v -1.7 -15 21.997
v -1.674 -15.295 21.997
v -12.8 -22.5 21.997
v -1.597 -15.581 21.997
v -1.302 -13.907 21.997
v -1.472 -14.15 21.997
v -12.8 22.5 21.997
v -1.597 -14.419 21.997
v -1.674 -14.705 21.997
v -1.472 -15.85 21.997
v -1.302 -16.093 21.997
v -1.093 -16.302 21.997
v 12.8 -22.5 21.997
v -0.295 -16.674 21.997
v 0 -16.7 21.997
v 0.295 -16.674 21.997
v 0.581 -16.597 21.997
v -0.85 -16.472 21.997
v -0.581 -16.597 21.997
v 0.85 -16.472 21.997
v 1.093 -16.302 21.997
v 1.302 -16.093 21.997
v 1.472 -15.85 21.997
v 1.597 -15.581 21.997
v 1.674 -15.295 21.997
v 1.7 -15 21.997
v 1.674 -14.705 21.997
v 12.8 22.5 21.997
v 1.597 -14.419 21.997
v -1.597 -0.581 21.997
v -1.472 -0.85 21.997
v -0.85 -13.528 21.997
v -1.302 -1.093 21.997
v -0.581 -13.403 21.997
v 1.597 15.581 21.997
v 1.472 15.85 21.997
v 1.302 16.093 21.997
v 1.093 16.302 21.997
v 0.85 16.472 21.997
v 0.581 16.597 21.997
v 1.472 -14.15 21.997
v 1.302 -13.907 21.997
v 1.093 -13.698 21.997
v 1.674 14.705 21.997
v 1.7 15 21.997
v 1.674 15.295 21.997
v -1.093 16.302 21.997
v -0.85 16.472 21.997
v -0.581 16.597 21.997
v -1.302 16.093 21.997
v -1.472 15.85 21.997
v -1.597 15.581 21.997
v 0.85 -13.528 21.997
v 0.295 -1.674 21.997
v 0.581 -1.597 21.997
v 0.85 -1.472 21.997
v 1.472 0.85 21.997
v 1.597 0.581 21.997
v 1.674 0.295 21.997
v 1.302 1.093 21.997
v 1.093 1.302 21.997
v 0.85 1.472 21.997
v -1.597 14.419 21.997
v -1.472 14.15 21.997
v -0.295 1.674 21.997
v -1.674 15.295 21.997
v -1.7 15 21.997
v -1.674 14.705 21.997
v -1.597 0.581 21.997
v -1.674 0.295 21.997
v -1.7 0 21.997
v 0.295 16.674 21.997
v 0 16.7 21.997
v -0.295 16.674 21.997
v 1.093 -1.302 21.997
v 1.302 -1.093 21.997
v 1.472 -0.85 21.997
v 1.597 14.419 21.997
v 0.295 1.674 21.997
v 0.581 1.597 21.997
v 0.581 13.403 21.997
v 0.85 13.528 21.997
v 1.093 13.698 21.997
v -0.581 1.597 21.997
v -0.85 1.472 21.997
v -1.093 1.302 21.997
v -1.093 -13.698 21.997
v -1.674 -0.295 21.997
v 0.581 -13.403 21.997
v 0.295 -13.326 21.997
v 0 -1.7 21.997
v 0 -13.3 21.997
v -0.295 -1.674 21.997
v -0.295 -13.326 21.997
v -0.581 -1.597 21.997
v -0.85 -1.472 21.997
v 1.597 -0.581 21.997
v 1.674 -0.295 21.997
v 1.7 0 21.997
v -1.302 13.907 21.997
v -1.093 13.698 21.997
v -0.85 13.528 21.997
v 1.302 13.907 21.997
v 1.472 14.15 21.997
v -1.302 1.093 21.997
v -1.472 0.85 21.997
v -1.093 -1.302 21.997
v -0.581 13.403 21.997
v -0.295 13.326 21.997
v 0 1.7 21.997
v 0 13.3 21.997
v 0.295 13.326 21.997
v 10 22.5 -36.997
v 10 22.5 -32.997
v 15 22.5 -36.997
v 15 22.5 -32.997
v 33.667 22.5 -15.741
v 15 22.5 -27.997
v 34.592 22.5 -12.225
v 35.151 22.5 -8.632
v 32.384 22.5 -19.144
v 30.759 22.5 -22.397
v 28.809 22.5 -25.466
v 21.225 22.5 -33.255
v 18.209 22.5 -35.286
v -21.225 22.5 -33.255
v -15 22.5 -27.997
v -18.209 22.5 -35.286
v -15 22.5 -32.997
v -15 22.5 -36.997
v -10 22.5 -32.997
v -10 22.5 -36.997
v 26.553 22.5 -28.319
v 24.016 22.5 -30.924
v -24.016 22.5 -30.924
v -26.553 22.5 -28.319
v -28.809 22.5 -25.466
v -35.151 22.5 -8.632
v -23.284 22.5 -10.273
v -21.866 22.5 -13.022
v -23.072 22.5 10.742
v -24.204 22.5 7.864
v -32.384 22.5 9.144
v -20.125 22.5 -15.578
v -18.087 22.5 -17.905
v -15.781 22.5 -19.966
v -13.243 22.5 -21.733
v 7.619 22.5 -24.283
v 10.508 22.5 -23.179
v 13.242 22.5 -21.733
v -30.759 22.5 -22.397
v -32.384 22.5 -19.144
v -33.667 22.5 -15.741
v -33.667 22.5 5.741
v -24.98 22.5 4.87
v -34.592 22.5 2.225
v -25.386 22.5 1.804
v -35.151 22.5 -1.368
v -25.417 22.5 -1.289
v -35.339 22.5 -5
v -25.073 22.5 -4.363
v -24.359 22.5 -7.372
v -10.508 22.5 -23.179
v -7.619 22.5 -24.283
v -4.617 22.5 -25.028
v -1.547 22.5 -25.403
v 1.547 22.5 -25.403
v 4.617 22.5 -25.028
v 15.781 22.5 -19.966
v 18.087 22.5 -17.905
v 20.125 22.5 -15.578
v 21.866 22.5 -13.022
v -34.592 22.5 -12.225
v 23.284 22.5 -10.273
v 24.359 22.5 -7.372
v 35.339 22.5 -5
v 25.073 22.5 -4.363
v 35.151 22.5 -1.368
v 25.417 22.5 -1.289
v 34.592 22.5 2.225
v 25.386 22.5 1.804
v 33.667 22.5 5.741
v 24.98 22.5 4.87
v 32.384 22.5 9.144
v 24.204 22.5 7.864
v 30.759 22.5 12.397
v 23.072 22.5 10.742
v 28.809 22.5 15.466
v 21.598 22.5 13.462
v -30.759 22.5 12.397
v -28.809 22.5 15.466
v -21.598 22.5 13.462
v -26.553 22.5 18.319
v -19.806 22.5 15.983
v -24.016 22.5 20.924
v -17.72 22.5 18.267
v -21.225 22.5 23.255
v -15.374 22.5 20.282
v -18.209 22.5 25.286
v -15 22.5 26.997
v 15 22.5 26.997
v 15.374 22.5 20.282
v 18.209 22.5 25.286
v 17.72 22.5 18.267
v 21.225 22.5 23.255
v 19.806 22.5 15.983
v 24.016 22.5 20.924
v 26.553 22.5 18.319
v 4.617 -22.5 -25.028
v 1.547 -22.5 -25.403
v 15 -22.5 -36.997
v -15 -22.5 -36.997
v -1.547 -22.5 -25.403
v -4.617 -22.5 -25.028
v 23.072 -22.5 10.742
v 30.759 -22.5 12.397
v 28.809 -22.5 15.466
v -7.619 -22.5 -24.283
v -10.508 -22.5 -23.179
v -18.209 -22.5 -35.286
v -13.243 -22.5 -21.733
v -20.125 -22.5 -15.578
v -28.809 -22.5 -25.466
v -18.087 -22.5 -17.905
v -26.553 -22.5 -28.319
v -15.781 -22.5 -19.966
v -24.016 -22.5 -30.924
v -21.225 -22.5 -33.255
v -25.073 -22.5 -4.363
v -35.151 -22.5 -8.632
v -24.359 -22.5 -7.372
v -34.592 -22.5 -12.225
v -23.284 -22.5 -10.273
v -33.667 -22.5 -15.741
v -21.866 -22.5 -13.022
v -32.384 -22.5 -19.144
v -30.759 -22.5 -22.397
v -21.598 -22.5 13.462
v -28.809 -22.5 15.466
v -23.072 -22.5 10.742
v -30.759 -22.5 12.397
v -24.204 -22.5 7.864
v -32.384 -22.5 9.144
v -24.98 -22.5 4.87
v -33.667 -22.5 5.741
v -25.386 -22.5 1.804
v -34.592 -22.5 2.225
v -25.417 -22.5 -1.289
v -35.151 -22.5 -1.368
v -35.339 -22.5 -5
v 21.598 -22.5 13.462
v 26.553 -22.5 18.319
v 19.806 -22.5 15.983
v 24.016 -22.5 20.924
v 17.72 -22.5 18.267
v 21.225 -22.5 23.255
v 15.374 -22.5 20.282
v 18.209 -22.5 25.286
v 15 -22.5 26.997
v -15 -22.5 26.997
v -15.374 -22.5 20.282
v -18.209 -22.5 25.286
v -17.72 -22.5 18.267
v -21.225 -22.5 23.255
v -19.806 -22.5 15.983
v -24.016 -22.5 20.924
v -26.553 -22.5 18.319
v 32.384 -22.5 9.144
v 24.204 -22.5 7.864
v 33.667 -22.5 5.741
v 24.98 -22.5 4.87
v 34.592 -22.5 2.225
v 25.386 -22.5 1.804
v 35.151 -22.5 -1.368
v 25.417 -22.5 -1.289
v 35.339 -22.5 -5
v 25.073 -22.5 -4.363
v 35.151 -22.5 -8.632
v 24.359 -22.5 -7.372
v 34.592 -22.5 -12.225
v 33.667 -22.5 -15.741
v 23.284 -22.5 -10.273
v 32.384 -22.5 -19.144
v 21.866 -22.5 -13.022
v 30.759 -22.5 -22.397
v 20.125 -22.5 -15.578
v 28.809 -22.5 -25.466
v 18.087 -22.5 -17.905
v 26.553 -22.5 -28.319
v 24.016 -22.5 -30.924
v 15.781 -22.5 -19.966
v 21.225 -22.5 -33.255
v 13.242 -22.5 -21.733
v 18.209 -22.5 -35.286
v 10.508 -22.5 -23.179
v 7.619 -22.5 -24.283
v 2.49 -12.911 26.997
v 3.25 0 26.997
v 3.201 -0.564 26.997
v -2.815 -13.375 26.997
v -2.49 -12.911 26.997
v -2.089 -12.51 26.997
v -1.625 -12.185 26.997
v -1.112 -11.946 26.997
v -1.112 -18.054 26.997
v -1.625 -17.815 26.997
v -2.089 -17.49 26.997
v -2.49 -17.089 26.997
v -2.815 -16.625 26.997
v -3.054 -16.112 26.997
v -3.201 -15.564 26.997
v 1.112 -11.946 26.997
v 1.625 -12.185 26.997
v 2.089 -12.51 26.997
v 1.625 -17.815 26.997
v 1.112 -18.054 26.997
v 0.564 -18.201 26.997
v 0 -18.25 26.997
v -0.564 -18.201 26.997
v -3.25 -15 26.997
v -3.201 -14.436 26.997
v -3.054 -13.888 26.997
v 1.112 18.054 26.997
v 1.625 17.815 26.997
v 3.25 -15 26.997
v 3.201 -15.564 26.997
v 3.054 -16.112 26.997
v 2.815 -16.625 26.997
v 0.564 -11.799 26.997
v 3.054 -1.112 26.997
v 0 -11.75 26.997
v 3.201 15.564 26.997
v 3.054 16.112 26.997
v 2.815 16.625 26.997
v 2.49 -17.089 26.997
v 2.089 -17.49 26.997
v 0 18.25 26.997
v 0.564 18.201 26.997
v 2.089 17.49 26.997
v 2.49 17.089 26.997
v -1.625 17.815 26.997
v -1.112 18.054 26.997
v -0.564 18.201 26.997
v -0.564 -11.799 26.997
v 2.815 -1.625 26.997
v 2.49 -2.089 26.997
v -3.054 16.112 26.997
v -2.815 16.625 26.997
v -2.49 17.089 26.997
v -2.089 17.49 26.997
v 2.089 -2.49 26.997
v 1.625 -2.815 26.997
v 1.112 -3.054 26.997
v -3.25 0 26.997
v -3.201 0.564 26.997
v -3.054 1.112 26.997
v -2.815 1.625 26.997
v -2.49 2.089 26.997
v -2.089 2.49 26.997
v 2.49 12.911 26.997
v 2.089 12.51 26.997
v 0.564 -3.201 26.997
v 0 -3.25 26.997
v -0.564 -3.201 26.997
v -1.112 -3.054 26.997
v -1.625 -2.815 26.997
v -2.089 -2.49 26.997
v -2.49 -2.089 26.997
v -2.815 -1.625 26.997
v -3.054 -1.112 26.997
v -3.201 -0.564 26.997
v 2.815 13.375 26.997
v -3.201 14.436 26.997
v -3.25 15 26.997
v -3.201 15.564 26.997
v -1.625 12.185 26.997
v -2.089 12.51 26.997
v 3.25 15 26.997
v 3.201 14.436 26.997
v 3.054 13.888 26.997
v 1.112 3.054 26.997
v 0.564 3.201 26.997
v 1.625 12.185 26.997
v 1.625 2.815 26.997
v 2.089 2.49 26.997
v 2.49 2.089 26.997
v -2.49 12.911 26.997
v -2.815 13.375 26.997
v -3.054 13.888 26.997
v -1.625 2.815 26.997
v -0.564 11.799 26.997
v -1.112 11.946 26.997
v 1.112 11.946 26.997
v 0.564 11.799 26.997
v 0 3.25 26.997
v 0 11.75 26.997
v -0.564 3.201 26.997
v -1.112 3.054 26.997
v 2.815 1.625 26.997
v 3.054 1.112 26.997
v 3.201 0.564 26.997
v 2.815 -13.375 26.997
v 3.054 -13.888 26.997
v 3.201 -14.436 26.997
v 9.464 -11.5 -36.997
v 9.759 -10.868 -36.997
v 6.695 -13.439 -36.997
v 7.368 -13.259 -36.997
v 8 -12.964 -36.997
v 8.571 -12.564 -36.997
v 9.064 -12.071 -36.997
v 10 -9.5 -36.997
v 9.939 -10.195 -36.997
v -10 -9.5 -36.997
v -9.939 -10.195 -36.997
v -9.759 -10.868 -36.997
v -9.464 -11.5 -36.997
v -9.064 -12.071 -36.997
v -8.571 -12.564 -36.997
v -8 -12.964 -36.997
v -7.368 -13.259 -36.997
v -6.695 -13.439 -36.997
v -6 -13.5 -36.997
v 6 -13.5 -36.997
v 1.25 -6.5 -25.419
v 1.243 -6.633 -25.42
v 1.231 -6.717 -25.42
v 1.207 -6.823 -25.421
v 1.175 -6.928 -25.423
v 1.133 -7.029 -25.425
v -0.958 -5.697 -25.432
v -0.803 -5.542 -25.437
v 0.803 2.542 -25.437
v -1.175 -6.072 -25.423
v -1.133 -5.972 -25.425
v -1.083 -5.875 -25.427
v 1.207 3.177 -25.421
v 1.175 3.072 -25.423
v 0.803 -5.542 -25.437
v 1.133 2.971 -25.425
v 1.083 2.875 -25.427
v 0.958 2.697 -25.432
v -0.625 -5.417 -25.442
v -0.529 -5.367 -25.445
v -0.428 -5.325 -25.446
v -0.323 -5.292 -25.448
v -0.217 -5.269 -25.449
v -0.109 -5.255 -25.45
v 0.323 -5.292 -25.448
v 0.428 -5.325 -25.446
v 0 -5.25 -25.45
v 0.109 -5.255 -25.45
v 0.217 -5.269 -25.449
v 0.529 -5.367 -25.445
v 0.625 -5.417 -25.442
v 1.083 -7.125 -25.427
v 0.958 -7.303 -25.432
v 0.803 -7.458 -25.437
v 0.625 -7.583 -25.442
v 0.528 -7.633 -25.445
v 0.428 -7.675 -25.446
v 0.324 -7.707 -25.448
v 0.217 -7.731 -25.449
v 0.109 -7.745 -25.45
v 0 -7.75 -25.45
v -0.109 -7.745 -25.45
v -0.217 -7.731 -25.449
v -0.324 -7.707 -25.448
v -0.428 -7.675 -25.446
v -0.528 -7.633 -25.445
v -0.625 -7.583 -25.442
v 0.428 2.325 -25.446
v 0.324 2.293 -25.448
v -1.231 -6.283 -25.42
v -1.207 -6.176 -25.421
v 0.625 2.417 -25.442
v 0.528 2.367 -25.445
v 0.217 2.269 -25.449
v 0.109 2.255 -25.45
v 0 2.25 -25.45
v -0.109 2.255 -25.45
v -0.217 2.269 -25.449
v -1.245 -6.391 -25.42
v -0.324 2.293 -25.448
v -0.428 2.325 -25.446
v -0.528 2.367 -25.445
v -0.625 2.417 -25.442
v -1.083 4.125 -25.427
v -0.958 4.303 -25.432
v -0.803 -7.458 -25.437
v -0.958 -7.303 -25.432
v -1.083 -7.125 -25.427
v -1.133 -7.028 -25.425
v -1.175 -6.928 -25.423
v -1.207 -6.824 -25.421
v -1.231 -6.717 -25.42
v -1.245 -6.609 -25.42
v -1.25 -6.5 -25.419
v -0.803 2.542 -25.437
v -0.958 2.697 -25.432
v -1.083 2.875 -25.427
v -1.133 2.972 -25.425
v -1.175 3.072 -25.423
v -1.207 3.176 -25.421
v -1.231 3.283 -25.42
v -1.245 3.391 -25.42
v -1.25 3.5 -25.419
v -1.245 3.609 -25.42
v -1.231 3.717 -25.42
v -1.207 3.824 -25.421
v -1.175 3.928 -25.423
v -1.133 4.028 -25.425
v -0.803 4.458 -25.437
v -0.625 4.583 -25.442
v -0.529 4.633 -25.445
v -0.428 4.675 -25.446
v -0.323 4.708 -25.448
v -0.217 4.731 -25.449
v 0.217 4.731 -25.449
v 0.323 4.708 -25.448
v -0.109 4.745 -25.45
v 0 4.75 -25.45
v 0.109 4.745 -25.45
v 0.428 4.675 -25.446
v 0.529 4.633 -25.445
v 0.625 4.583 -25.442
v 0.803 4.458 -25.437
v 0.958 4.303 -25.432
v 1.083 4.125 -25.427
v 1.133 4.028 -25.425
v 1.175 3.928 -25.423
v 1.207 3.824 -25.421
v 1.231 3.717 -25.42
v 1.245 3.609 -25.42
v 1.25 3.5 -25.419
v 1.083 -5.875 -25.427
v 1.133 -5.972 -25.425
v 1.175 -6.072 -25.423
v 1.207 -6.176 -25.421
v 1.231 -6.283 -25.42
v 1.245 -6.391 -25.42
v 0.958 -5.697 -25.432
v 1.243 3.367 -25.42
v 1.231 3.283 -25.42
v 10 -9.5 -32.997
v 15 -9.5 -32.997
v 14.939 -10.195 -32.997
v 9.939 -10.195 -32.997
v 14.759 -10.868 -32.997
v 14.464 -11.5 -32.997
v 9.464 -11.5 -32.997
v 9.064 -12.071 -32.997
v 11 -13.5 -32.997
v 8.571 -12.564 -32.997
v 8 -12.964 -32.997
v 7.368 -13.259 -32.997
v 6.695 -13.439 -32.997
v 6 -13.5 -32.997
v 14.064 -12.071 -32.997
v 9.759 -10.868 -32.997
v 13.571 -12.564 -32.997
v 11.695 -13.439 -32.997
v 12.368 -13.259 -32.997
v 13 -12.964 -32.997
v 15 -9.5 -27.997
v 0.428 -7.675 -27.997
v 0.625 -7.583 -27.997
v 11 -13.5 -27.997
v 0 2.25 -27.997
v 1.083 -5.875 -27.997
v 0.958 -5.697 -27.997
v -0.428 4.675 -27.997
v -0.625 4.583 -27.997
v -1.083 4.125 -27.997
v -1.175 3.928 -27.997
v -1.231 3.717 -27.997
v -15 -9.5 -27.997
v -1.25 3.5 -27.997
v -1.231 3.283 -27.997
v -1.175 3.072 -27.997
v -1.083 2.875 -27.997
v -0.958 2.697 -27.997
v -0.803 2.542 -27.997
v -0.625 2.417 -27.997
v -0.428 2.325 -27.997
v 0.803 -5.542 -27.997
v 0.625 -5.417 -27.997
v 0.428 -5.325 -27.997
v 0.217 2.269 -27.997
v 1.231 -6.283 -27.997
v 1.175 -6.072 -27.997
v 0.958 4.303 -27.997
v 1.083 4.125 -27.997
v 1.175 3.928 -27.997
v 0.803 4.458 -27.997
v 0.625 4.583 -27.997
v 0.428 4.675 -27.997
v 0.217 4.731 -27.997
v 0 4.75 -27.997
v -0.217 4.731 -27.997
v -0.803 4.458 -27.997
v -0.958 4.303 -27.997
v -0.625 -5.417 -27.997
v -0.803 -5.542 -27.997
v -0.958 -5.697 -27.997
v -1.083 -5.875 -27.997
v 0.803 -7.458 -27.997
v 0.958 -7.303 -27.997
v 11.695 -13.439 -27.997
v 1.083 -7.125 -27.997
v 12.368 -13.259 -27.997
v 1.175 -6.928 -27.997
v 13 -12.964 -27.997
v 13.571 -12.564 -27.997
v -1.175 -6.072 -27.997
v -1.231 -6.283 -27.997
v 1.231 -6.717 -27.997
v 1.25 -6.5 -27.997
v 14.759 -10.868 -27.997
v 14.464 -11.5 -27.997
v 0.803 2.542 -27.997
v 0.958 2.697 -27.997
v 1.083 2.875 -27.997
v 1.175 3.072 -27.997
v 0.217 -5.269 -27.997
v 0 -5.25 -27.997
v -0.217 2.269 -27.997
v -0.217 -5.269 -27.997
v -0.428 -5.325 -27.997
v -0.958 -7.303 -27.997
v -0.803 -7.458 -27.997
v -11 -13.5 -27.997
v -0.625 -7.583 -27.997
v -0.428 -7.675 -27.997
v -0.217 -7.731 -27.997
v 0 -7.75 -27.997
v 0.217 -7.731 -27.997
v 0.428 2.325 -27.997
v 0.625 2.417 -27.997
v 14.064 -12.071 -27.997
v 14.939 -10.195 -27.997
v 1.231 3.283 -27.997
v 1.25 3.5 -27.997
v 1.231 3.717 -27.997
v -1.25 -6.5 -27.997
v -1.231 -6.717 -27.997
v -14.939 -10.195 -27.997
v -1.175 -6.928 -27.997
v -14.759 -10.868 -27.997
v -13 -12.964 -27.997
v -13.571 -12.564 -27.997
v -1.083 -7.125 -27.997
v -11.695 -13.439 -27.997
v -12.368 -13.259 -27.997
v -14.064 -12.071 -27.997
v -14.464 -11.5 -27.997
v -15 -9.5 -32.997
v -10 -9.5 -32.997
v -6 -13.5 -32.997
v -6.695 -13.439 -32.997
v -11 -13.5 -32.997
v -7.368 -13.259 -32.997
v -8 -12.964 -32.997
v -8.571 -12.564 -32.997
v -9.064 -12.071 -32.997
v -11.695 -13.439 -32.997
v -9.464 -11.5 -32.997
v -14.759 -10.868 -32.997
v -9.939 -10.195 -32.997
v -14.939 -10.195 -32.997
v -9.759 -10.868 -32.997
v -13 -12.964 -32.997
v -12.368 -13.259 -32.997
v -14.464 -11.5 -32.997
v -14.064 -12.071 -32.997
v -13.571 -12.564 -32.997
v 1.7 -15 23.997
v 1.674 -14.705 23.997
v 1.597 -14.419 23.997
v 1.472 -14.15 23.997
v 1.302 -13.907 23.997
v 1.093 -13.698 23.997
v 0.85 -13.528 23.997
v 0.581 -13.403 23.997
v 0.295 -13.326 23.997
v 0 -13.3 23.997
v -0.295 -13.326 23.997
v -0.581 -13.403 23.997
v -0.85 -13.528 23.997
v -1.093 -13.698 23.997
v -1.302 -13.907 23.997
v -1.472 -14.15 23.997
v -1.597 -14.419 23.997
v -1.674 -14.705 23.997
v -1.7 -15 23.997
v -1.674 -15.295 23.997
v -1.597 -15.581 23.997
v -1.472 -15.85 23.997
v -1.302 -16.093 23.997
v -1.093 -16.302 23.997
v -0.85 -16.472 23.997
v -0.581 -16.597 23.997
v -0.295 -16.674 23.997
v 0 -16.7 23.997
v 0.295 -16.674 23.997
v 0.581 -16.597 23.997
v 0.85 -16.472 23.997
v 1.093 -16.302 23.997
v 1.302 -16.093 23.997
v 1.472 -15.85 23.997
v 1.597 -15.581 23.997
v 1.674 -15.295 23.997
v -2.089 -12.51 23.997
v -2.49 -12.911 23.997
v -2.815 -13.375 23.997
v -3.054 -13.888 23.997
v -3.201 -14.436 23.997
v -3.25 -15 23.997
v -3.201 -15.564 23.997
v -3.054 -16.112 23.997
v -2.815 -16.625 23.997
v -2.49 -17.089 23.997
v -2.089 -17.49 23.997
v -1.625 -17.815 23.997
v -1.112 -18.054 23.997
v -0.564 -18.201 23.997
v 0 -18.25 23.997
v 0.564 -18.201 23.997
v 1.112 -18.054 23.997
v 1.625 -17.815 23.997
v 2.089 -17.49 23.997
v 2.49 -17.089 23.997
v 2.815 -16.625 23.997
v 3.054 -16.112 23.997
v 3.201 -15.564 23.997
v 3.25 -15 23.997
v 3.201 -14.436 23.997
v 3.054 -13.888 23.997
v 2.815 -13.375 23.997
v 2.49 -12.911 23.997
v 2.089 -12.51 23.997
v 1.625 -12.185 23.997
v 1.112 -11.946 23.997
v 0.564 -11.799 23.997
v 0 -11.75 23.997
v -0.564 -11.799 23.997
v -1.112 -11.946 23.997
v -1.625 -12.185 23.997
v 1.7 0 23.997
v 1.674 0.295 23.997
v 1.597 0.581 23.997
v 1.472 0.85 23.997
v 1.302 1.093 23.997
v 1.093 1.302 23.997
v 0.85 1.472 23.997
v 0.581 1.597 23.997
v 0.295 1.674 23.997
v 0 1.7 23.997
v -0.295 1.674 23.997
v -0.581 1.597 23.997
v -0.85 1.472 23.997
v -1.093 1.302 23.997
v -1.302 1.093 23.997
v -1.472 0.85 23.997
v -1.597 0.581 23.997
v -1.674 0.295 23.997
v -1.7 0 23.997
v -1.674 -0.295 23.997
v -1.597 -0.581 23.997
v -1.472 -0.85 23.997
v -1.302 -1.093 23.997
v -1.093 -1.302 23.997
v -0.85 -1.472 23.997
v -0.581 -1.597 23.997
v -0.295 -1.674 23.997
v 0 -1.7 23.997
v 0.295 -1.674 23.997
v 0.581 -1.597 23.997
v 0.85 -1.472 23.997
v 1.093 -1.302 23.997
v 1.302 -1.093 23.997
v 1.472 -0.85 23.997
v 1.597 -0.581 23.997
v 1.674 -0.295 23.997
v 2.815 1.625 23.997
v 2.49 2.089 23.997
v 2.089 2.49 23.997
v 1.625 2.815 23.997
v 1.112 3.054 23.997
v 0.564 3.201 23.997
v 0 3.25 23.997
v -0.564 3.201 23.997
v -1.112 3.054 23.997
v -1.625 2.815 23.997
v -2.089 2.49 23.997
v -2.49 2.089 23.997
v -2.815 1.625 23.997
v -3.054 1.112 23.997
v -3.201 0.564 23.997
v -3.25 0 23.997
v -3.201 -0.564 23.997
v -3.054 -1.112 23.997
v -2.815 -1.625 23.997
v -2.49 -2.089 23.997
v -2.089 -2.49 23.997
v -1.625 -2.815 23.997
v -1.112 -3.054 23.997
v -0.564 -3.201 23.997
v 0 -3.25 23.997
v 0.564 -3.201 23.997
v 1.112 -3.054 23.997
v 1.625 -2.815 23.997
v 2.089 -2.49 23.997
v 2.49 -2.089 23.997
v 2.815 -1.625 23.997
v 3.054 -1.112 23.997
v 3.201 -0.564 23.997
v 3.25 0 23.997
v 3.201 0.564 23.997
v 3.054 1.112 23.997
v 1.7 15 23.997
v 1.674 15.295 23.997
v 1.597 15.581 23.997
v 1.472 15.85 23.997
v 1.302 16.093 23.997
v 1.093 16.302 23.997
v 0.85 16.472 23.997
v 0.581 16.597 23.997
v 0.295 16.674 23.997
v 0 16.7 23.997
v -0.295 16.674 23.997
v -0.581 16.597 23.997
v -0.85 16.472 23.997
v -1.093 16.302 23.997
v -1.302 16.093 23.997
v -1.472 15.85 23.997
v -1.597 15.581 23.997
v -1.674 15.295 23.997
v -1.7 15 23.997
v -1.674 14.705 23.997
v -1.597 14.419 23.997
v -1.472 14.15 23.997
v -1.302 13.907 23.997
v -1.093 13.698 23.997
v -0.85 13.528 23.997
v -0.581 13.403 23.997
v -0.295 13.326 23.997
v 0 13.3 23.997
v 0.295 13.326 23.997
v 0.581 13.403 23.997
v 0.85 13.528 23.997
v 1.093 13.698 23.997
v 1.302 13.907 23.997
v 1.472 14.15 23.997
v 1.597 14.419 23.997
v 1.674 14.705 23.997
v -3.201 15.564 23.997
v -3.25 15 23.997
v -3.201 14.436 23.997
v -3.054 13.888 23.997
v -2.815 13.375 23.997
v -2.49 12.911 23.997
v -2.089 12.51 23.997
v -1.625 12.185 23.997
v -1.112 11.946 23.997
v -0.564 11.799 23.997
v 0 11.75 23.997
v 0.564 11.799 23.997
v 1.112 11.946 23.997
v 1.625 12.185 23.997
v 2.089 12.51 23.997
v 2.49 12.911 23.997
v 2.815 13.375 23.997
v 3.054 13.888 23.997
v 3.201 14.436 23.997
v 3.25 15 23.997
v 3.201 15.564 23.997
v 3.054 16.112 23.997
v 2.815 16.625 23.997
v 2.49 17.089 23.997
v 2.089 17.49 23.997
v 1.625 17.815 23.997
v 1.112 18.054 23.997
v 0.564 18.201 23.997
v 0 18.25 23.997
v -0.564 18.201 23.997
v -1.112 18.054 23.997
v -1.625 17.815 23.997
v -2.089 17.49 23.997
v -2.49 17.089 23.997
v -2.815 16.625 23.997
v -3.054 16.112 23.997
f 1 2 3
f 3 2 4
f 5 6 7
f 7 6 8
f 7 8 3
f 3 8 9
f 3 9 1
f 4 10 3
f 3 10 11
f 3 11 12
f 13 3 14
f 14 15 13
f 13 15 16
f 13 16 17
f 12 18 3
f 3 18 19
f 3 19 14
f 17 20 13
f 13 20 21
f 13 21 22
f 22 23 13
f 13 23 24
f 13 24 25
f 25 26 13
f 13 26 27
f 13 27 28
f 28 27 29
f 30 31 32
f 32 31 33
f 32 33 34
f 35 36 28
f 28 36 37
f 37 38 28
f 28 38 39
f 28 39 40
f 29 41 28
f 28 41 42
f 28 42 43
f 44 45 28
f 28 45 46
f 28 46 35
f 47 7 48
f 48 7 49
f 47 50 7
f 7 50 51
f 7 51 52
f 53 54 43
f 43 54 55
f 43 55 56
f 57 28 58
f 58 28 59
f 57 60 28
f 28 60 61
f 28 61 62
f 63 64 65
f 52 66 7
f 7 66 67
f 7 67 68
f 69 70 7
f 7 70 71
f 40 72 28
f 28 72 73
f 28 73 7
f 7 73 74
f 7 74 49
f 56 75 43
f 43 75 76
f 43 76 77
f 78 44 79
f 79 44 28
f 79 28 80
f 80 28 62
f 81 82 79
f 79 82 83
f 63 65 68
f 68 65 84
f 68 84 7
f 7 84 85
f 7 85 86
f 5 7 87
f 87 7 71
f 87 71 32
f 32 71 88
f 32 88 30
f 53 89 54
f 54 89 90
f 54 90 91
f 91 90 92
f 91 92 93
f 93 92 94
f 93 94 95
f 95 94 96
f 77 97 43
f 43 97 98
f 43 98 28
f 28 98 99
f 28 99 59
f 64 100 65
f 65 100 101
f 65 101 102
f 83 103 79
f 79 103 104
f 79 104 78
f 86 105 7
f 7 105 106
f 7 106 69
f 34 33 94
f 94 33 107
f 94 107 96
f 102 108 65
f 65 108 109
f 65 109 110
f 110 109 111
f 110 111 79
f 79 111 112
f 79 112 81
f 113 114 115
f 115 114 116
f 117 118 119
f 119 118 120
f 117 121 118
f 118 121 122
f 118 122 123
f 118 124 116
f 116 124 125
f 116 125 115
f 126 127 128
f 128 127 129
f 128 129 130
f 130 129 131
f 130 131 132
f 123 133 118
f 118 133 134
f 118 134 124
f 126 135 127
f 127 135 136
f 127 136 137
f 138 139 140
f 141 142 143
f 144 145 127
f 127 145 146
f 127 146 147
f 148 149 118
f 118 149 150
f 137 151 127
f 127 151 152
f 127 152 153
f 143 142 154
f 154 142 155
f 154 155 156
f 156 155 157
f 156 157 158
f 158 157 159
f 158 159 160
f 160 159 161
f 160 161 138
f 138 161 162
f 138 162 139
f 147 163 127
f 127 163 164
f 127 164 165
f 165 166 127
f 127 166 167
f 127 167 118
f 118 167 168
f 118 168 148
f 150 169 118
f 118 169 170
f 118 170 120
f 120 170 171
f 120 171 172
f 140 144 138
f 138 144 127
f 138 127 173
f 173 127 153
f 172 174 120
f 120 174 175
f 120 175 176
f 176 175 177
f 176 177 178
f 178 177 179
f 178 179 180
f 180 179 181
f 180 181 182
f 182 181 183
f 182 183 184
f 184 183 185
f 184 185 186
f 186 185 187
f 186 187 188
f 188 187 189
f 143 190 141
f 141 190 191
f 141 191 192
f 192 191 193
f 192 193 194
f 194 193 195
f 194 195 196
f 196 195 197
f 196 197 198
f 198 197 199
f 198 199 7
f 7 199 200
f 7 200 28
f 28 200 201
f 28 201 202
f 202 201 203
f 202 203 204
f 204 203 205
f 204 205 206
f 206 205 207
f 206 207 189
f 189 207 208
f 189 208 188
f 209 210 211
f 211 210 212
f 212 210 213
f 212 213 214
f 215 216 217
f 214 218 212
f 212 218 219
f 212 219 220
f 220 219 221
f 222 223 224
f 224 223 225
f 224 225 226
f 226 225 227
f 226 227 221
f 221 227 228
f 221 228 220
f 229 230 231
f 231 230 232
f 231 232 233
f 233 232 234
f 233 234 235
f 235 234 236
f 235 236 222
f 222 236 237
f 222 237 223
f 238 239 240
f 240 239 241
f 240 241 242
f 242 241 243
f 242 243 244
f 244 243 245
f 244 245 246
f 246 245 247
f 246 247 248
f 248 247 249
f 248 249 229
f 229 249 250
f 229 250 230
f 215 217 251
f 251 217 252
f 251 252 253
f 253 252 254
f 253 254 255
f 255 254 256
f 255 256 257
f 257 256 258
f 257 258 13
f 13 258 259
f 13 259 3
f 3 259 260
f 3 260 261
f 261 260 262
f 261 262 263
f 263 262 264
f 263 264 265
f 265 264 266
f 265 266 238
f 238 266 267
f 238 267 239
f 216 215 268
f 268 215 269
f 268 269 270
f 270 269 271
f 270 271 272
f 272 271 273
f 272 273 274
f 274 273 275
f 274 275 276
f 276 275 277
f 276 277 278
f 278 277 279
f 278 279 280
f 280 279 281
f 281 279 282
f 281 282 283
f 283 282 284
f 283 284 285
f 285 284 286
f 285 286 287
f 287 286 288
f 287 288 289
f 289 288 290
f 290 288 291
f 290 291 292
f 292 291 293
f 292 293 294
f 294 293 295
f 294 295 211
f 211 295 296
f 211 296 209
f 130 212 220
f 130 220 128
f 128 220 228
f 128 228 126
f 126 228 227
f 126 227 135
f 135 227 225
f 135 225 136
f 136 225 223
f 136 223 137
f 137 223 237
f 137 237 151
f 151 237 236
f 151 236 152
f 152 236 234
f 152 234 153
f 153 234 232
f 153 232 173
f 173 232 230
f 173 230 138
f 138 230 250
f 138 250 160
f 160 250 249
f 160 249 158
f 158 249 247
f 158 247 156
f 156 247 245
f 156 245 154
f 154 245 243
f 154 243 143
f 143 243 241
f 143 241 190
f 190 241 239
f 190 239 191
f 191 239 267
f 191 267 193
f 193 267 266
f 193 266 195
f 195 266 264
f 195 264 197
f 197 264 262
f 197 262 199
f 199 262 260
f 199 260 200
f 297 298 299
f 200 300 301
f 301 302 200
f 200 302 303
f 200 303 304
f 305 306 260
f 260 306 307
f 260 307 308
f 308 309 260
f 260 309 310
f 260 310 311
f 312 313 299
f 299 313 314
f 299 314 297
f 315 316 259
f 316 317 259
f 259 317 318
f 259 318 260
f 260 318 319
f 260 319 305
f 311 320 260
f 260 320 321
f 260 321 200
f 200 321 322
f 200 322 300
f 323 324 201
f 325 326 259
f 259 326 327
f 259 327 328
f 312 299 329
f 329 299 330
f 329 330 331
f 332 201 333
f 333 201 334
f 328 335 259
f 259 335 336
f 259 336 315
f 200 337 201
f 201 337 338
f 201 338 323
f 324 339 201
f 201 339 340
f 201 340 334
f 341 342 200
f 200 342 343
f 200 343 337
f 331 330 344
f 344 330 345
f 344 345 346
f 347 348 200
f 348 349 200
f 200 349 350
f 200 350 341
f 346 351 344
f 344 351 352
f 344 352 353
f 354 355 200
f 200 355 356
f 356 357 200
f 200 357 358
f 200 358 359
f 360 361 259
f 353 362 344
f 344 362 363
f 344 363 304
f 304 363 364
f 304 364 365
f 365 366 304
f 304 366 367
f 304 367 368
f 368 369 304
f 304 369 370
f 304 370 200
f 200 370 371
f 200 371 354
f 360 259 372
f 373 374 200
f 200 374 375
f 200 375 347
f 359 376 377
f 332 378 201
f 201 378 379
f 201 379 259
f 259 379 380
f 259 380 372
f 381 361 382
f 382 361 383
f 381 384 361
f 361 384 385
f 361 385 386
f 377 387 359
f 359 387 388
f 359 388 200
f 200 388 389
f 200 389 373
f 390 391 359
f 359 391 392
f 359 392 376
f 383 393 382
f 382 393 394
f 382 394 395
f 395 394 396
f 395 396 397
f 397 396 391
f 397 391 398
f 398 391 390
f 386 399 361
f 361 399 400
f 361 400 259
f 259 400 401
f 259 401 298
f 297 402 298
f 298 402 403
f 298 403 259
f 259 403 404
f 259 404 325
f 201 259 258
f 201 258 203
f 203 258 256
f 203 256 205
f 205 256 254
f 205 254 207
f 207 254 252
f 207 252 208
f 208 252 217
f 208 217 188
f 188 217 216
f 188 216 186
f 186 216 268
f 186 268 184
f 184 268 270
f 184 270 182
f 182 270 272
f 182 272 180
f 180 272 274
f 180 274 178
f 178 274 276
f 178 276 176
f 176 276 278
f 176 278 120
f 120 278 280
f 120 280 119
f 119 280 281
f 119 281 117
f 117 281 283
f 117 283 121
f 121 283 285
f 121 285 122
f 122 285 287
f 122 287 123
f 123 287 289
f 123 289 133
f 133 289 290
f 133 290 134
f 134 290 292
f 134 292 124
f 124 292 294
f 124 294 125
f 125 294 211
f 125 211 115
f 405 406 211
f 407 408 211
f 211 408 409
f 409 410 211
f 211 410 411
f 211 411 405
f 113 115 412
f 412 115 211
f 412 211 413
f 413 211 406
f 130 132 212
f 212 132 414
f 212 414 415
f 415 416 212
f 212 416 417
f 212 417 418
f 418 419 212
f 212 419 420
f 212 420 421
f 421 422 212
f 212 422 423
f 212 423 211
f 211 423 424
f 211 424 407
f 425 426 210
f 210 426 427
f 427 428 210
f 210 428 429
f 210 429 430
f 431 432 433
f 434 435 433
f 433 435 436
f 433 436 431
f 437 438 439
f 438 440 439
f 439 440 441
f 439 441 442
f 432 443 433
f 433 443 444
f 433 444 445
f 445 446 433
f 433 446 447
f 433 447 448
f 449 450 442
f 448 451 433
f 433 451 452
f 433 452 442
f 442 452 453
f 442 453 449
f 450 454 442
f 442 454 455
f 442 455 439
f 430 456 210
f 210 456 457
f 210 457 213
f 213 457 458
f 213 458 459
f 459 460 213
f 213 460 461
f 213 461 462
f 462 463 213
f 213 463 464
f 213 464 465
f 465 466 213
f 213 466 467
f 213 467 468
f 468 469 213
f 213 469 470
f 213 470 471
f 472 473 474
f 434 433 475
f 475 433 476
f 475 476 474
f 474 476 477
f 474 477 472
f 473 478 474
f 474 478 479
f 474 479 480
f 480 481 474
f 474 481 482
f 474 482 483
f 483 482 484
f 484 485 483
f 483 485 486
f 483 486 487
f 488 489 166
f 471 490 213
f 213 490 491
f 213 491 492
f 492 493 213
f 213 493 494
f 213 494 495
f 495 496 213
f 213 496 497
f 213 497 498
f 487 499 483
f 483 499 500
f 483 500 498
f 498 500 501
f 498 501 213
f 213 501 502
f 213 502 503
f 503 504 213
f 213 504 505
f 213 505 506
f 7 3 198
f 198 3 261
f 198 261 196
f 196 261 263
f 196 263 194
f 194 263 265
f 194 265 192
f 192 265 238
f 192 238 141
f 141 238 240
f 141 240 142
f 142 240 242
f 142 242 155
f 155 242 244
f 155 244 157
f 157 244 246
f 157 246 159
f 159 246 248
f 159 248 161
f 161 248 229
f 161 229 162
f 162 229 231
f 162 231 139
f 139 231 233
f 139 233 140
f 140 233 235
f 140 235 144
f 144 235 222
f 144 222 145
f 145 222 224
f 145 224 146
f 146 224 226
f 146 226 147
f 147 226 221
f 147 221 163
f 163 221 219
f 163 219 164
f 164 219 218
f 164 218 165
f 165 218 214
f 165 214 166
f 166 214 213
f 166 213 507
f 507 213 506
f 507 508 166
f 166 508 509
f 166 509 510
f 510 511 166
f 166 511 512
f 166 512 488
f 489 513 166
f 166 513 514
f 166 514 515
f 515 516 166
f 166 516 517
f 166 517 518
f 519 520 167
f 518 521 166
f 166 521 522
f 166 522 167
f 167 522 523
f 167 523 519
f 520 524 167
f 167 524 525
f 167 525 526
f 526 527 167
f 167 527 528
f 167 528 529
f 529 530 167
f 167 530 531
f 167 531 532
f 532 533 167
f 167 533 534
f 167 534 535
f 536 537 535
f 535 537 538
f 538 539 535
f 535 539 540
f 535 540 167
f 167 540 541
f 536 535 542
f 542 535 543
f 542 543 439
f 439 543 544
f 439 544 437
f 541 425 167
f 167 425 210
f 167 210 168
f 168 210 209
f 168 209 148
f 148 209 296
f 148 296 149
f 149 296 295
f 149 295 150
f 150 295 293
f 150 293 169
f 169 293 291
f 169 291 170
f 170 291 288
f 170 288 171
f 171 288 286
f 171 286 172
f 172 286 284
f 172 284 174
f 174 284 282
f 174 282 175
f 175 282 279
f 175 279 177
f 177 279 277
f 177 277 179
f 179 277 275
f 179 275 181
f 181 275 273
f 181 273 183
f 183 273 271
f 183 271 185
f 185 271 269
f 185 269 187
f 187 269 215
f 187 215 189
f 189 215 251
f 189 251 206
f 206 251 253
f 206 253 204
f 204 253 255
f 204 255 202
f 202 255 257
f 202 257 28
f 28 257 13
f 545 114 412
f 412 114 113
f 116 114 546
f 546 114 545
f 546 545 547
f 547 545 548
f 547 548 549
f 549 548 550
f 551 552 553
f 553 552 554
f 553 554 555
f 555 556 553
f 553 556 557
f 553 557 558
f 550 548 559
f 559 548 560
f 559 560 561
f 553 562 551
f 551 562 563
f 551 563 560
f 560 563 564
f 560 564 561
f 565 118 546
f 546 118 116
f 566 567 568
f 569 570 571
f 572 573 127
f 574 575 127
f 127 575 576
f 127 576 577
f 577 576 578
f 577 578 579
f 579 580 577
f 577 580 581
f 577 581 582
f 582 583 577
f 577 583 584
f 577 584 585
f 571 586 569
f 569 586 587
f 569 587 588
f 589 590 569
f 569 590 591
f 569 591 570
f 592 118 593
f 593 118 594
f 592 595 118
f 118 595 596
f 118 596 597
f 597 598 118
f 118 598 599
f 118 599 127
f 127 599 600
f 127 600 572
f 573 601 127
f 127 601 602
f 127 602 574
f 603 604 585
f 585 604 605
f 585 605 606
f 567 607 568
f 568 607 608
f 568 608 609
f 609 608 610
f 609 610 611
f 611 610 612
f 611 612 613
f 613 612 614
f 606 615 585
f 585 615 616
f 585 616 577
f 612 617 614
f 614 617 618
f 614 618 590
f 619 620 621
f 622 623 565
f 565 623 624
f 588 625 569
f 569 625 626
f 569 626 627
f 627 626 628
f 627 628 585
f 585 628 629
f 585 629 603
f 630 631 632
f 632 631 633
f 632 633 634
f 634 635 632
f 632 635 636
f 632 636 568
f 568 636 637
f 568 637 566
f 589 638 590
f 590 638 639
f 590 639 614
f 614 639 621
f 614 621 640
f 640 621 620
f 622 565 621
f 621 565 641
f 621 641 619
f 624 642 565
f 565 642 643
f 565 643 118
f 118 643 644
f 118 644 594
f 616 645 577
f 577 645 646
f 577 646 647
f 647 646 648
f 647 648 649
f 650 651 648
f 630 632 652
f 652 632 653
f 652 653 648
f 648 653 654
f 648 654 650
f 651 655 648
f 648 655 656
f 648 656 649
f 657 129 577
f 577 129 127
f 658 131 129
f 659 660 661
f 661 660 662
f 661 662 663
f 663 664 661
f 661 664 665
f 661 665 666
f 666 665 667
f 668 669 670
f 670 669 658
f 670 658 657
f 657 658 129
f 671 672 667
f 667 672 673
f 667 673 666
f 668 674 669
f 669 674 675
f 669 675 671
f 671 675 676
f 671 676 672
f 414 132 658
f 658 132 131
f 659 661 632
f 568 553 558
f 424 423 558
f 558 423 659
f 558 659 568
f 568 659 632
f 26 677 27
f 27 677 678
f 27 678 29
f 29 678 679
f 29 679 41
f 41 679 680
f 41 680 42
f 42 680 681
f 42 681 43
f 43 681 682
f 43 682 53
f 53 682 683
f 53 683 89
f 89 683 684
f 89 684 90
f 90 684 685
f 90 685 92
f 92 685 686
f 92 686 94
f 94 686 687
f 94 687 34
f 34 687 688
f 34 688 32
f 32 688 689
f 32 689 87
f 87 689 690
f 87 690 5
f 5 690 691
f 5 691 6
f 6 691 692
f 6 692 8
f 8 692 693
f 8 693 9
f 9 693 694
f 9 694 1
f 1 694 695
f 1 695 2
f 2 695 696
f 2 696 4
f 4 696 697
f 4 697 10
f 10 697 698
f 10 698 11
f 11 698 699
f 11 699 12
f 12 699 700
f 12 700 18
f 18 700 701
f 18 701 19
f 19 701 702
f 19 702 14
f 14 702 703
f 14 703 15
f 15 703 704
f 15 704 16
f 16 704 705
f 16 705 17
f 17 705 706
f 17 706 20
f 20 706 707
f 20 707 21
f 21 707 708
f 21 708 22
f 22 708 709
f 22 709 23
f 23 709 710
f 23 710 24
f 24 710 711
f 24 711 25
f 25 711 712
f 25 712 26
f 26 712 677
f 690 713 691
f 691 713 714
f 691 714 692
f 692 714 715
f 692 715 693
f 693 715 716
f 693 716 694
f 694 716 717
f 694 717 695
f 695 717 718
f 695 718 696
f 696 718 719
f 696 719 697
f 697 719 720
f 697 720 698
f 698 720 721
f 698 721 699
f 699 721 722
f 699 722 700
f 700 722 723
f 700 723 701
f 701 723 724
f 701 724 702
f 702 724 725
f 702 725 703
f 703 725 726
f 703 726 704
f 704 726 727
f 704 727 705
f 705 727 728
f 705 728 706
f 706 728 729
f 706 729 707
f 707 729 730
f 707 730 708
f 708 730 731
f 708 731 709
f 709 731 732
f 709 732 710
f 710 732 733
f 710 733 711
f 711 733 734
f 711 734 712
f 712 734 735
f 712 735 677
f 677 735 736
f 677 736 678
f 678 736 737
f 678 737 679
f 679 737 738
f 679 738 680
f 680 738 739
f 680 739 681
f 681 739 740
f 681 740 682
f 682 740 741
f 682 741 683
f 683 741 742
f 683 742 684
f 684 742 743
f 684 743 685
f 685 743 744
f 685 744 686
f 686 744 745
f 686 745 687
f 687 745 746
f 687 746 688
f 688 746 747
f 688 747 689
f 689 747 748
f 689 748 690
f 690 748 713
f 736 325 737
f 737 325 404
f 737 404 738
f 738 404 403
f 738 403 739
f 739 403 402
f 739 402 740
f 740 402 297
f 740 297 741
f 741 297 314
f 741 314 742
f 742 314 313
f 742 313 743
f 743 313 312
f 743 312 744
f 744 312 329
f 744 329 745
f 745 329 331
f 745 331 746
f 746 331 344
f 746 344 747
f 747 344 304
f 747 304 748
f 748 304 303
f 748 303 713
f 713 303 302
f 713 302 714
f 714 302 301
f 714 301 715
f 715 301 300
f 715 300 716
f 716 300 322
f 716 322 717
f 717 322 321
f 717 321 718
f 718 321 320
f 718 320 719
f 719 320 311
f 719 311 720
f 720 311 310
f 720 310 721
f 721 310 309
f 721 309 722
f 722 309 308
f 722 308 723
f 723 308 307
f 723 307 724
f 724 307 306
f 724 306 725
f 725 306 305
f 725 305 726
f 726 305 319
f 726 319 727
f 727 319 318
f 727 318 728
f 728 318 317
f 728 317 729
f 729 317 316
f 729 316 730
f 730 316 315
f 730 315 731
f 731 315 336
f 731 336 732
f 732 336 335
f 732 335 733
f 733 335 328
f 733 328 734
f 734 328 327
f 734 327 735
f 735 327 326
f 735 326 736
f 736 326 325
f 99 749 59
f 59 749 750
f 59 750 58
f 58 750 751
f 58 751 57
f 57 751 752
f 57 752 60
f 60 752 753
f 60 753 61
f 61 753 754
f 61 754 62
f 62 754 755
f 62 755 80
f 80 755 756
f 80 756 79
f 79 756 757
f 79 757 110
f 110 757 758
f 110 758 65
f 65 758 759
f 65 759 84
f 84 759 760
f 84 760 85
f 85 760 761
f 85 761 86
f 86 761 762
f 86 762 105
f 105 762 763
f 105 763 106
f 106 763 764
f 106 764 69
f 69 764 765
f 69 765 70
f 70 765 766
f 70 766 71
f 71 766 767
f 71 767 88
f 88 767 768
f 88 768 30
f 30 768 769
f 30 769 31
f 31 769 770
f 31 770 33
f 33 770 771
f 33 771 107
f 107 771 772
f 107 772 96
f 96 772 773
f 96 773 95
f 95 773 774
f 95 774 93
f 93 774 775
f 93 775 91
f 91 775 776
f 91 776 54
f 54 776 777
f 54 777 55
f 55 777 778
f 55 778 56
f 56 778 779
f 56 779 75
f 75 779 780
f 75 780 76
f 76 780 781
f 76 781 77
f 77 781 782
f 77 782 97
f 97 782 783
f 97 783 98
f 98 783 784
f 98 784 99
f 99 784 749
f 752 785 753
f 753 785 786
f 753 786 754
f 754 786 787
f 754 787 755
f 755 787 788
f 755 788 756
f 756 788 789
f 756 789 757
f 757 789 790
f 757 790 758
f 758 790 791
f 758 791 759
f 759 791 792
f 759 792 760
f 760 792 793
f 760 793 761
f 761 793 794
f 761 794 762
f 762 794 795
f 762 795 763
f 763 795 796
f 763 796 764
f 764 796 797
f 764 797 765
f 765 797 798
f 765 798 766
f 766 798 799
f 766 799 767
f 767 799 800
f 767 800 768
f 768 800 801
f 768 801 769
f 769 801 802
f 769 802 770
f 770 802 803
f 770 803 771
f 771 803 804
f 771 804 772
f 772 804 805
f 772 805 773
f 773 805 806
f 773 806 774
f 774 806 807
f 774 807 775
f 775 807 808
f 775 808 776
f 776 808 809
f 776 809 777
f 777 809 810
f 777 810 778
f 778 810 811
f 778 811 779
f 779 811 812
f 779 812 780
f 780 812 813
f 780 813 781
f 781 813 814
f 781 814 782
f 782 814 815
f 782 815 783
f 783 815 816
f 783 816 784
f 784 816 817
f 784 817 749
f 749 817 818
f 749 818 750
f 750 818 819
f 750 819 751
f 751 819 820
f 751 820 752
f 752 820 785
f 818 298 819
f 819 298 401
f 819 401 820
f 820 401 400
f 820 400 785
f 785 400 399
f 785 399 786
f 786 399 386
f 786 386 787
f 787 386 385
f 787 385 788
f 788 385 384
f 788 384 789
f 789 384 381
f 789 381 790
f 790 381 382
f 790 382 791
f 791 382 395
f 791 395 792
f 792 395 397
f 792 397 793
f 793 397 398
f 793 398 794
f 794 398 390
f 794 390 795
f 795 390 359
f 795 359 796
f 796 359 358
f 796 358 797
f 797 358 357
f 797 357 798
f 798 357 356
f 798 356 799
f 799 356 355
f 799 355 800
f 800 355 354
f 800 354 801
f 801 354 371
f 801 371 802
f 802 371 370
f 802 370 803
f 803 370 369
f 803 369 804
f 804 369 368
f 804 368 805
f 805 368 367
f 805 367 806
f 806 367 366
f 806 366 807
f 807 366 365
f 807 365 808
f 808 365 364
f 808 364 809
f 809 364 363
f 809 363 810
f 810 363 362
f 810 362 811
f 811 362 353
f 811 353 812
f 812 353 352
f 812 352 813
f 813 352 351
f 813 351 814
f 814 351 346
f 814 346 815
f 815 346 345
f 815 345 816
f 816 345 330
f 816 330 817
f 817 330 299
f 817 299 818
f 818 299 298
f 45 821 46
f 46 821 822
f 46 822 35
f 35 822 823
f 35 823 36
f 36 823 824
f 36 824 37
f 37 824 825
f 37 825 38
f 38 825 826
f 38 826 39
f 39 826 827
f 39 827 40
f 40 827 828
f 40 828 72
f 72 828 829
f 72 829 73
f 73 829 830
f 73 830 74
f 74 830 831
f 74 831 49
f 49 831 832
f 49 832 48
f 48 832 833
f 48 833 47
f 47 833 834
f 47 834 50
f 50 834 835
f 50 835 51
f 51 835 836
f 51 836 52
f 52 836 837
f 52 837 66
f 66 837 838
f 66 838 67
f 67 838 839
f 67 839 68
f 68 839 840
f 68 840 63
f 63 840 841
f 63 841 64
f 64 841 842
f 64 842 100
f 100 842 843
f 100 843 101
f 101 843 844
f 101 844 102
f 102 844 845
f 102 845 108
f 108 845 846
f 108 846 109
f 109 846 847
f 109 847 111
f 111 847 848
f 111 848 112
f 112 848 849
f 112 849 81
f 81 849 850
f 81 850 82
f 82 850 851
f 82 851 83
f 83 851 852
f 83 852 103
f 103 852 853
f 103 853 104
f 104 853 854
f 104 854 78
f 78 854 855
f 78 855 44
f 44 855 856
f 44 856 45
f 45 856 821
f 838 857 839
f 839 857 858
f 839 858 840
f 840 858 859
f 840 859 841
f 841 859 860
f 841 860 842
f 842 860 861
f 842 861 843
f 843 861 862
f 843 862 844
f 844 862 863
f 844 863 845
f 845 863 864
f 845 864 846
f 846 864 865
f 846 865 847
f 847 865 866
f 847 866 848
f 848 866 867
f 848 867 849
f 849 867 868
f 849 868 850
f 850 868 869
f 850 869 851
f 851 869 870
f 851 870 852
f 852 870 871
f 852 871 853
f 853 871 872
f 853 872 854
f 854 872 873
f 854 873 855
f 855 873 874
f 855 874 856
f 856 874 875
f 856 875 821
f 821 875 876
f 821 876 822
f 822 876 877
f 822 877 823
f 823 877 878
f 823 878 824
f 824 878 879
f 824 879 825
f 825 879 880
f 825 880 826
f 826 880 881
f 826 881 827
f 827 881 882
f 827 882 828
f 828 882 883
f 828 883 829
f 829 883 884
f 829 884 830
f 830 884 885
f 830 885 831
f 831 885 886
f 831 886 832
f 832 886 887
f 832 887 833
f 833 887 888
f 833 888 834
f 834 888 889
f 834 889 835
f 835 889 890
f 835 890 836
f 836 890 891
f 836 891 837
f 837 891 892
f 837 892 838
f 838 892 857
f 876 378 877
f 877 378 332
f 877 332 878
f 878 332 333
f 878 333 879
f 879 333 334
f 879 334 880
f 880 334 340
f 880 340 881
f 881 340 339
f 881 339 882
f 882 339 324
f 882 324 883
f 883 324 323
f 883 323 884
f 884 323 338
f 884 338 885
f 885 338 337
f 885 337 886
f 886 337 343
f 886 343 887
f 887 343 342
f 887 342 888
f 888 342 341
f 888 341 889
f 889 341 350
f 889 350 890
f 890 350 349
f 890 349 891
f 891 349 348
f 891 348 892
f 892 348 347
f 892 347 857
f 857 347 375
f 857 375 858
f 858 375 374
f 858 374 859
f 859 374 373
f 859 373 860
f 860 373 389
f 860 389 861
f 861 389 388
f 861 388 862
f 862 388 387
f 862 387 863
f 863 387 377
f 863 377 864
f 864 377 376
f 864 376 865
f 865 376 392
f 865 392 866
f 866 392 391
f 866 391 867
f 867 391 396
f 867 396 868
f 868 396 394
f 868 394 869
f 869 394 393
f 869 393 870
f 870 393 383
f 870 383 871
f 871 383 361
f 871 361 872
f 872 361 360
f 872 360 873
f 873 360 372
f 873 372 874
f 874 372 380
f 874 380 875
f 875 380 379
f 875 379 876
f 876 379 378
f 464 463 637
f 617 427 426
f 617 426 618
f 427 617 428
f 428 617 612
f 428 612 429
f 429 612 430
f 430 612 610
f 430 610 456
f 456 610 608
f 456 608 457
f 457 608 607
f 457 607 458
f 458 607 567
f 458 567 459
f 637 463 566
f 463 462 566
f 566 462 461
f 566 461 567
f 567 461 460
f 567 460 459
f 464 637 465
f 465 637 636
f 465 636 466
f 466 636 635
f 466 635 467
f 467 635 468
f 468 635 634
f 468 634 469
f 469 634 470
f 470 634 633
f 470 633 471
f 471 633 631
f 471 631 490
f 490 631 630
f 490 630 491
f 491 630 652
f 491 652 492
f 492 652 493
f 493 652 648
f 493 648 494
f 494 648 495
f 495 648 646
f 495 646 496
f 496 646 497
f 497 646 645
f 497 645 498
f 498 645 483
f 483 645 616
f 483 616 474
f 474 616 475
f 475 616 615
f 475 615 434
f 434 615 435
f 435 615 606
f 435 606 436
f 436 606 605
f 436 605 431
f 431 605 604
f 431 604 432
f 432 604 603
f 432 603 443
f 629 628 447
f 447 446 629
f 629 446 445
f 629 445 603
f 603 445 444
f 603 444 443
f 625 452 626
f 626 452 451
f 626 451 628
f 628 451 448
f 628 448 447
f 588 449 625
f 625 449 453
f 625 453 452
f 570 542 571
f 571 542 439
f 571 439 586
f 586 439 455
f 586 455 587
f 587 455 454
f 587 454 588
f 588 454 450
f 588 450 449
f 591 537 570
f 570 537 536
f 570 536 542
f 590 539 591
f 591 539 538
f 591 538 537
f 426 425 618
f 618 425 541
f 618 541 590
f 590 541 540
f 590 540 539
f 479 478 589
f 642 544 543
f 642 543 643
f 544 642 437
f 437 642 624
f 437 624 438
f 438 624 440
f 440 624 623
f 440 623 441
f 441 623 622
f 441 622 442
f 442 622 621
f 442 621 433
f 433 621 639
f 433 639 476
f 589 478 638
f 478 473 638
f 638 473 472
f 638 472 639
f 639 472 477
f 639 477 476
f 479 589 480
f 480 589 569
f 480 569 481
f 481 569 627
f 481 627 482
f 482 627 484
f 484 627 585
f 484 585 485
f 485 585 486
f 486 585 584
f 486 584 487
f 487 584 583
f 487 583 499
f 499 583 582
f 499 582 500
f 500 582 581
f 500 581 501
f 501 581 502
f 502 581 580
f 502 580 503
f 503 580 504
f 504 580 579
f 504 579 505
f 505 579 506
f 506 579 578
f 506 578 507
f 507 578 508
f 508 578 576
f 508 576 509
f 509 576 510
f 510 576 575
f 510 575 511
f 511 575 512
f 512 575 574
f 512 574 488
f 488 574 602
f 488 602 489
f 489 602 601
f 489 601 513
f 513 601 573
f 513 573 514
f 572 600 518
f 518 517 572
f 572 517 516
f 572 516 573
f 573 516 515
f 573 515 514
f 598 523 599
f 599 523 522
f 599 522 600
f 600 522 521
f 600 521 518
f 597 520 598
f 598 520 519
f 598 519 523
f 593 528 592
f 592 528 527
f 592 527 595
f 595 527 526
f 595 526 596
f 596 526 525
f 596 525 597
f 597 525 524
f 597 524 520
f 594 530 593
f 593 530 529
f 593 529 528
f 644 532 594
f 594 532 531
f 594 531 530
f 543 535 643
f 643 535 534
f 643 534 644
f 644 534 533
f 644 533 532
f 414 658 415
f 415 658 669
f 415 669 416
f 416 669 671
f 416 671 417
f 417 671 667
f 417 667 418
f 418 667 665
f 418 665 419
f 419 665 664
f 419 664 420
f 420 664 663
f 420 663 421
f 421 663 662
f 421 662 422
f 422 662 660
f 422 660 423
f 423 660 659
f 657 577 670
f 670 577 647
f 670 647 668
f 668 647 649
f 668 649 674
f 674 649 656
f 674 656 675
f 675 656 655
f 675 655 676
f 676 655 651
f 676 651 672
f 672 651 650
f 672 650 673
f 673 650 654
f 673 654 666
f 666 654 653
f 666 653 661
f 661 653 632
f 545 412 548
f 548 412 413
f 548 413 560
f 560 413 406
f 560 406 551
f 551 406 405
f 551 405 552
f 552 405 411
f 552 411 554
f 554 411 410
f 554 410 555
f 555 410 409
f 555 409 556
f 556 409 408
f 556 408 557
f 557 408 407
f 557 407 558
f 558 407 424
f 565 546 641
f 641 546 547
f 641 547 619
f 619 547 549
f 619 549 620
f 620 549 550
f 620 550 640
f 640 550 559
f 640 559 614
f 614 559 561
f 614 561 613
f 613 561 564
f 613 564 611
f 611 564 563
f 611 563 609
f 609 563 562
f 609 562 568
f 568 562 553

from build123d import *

# Parameters (mm, degrees)
BOSS_EXTRUDE1_DEPTH            = 22.5
CUT_EXTRUDE1_DEPTH             = 36
CBORE_FOR_M3_SHCS1_D           = 3.4
CBORE_FOR_M3_SHCS1_DEPTH       = 5
CBORE_FOR_M3_SHCS1_CBORE_D     = 6.5
CBORE_FOR_M3_SHCS1_CBORE_DEPTH = 3
CBORE_FOR_M3_SHCS1_TIP         = 1.021463052
M3X0_5_TAPPED_HOLE1_D          = 2.5
M3X0_5_TAPPED_HOLE1_DEPTH      = 25.54449211
M3X0_5_TAPPED_HOLE1_TIP        = 0.751075774
FILLET2_R                      = 4
TOLERANCING_START              = -22.5
TOLERANCING_DEPTH              = 45


# Read off the part's stored shape, not the designer's step: Tolerancing
with BuildPart() as part:
    # Sketch1 → Boss-Extrude1 (new, symmetric)
    with BuildSketch(Plane(origin=(0, 0, 0), x_dir=(1, 0, 0), z_dir=(0, 1, 0))):
        with BuildLine():
            Line((-15, -26.997045256), (15, -26.997045256))
            ThreePointArc((15, -26.997045256), (35.338518717, 5), (15, 36.997045256))
            Line((15, 36.997045256), (-15, 36.997045256))
            ThreePointArc((-15, 36.997045256), (-35.338518717, 5), (-15, -26.997045256))
        make_face()
        with BuildLine():
            Line((-12.7, -21.997045256), (12.7, -21.997045256))
            ThreePointArc((12.7, -21.997045256), (0, 25.4), (-12.7, -21.997045256))
        make_face(mode=Mode.SUBTRACT)
    extrude(amount=BOSS_EXTRUDE1_DEPTH, both=True)

    # Sketch4 → Cut-Extrude1 (cut)
    with BuildSketch(Plane(origin=(0, 22.5, 0), x_dir=(1, 0, 0), z_dir=(0, 1, 0))):
        Polygon((-10, 36.997045256), (-10, 32.997045256), (-15, 32.997045256), (-15, 27.997045256), (15, 27.997045256), (15, 32.997045256), (10, 32.997045256), (10, 36.997045256), align=None)
    extrude(amount=-CUT_EXTRUDE1_DEPTH, mode=Mode.SUBTRACT)

    # CBORE for M3 SHCS1
    with Locations(Plane.XY.offset(26.997045256)):
        with Locations((0, 0), (0, 15), (0, -15)):
            CounterBoreHole(CBORE_FOR_M3_SHCS1_D / 2, CBORE_FOR_M3_SHCS1_CBORE_D / 2, CBORE_FOR_M3_SHCS1_CBORE_DEPTH, depth=CBORE_FOR_M3_SHCS1_DEPTH)
            with Locations((0, 0, -(CBORE_FOR_M3_SHCS1_DEPTH + CBORE_FOR_M3_SHCS1_TIP / 2))):  # 118° drill point
                Cone(0, CBORE_FOR_M3_SHCS1_D / 2, CBORE_FOR_M3_SHCS1_TIP, mode=Mode.SUBTRACT)

    # M3x0.5 Tapped Hole1
    with Locations(Plane(origin=(0, 0, -27.997045256), x_dir=(-1, 0, 0), z_dir=(0, 0, -1))):
        with Locations((0, 3.5), (0, -6.5)):
            Hole(M3X0_5_TAPPED_HOLE1_D / 2, depth=M3X0_5_TAPPED_HOLE1_DEPTH)
            with Locations((0, 0, -(M3X0_5_TAPPED_HOLE1_DEPTH + M3X0_5_TAPPED_HOLE1_TIP / 2))):  # 118° drill point
                Cone(0, M3X0_5_TAPPED_HOLE1_D / 2, M3X0_5_TAPPED_HOLE1_TIP, mode=Mode.SUBTRACT)

    # Fillet2
    fillet2_edges = [part.edges().sort_by_distance(p)[0] for p in [
        (10, -13.5, -34.997045256),
        (15, -13.5, -30.497045256),
        (-15, -13.5, -30.497045256),
        (-10, -13.5, -34.997045256),
    ]]
    fillet(fillet2_edges, radius=FILLET2_R)

    # Tolerancing outline → Tolerancing (cut)
    with BuildSketch(Plane(origin=(0, 0, 0), x_dir=(1, 0, 0), z_dir=(0, 1, 0)).offset(TOLERANCING_START)):
        with BuildLine():
            ThreePointArc((12.799707028, -21.997045256), (0, 25.45), (-12.799707028, -21.997045256))
            Line((-12.799707028, -21.997045256), (-12.7, -21.997045256))
            ThreePointArc((-12.7, -21.997045256), (0, 25.4), (12.7, -21.997045256))
            Line((12.7, -21.997045256), (12.799707028, -21.997045256))
        make_face()
    extrude(amount=TOLERANCING_DEPTH, mode=Mode.SUBTRACT)


solid = part.part
